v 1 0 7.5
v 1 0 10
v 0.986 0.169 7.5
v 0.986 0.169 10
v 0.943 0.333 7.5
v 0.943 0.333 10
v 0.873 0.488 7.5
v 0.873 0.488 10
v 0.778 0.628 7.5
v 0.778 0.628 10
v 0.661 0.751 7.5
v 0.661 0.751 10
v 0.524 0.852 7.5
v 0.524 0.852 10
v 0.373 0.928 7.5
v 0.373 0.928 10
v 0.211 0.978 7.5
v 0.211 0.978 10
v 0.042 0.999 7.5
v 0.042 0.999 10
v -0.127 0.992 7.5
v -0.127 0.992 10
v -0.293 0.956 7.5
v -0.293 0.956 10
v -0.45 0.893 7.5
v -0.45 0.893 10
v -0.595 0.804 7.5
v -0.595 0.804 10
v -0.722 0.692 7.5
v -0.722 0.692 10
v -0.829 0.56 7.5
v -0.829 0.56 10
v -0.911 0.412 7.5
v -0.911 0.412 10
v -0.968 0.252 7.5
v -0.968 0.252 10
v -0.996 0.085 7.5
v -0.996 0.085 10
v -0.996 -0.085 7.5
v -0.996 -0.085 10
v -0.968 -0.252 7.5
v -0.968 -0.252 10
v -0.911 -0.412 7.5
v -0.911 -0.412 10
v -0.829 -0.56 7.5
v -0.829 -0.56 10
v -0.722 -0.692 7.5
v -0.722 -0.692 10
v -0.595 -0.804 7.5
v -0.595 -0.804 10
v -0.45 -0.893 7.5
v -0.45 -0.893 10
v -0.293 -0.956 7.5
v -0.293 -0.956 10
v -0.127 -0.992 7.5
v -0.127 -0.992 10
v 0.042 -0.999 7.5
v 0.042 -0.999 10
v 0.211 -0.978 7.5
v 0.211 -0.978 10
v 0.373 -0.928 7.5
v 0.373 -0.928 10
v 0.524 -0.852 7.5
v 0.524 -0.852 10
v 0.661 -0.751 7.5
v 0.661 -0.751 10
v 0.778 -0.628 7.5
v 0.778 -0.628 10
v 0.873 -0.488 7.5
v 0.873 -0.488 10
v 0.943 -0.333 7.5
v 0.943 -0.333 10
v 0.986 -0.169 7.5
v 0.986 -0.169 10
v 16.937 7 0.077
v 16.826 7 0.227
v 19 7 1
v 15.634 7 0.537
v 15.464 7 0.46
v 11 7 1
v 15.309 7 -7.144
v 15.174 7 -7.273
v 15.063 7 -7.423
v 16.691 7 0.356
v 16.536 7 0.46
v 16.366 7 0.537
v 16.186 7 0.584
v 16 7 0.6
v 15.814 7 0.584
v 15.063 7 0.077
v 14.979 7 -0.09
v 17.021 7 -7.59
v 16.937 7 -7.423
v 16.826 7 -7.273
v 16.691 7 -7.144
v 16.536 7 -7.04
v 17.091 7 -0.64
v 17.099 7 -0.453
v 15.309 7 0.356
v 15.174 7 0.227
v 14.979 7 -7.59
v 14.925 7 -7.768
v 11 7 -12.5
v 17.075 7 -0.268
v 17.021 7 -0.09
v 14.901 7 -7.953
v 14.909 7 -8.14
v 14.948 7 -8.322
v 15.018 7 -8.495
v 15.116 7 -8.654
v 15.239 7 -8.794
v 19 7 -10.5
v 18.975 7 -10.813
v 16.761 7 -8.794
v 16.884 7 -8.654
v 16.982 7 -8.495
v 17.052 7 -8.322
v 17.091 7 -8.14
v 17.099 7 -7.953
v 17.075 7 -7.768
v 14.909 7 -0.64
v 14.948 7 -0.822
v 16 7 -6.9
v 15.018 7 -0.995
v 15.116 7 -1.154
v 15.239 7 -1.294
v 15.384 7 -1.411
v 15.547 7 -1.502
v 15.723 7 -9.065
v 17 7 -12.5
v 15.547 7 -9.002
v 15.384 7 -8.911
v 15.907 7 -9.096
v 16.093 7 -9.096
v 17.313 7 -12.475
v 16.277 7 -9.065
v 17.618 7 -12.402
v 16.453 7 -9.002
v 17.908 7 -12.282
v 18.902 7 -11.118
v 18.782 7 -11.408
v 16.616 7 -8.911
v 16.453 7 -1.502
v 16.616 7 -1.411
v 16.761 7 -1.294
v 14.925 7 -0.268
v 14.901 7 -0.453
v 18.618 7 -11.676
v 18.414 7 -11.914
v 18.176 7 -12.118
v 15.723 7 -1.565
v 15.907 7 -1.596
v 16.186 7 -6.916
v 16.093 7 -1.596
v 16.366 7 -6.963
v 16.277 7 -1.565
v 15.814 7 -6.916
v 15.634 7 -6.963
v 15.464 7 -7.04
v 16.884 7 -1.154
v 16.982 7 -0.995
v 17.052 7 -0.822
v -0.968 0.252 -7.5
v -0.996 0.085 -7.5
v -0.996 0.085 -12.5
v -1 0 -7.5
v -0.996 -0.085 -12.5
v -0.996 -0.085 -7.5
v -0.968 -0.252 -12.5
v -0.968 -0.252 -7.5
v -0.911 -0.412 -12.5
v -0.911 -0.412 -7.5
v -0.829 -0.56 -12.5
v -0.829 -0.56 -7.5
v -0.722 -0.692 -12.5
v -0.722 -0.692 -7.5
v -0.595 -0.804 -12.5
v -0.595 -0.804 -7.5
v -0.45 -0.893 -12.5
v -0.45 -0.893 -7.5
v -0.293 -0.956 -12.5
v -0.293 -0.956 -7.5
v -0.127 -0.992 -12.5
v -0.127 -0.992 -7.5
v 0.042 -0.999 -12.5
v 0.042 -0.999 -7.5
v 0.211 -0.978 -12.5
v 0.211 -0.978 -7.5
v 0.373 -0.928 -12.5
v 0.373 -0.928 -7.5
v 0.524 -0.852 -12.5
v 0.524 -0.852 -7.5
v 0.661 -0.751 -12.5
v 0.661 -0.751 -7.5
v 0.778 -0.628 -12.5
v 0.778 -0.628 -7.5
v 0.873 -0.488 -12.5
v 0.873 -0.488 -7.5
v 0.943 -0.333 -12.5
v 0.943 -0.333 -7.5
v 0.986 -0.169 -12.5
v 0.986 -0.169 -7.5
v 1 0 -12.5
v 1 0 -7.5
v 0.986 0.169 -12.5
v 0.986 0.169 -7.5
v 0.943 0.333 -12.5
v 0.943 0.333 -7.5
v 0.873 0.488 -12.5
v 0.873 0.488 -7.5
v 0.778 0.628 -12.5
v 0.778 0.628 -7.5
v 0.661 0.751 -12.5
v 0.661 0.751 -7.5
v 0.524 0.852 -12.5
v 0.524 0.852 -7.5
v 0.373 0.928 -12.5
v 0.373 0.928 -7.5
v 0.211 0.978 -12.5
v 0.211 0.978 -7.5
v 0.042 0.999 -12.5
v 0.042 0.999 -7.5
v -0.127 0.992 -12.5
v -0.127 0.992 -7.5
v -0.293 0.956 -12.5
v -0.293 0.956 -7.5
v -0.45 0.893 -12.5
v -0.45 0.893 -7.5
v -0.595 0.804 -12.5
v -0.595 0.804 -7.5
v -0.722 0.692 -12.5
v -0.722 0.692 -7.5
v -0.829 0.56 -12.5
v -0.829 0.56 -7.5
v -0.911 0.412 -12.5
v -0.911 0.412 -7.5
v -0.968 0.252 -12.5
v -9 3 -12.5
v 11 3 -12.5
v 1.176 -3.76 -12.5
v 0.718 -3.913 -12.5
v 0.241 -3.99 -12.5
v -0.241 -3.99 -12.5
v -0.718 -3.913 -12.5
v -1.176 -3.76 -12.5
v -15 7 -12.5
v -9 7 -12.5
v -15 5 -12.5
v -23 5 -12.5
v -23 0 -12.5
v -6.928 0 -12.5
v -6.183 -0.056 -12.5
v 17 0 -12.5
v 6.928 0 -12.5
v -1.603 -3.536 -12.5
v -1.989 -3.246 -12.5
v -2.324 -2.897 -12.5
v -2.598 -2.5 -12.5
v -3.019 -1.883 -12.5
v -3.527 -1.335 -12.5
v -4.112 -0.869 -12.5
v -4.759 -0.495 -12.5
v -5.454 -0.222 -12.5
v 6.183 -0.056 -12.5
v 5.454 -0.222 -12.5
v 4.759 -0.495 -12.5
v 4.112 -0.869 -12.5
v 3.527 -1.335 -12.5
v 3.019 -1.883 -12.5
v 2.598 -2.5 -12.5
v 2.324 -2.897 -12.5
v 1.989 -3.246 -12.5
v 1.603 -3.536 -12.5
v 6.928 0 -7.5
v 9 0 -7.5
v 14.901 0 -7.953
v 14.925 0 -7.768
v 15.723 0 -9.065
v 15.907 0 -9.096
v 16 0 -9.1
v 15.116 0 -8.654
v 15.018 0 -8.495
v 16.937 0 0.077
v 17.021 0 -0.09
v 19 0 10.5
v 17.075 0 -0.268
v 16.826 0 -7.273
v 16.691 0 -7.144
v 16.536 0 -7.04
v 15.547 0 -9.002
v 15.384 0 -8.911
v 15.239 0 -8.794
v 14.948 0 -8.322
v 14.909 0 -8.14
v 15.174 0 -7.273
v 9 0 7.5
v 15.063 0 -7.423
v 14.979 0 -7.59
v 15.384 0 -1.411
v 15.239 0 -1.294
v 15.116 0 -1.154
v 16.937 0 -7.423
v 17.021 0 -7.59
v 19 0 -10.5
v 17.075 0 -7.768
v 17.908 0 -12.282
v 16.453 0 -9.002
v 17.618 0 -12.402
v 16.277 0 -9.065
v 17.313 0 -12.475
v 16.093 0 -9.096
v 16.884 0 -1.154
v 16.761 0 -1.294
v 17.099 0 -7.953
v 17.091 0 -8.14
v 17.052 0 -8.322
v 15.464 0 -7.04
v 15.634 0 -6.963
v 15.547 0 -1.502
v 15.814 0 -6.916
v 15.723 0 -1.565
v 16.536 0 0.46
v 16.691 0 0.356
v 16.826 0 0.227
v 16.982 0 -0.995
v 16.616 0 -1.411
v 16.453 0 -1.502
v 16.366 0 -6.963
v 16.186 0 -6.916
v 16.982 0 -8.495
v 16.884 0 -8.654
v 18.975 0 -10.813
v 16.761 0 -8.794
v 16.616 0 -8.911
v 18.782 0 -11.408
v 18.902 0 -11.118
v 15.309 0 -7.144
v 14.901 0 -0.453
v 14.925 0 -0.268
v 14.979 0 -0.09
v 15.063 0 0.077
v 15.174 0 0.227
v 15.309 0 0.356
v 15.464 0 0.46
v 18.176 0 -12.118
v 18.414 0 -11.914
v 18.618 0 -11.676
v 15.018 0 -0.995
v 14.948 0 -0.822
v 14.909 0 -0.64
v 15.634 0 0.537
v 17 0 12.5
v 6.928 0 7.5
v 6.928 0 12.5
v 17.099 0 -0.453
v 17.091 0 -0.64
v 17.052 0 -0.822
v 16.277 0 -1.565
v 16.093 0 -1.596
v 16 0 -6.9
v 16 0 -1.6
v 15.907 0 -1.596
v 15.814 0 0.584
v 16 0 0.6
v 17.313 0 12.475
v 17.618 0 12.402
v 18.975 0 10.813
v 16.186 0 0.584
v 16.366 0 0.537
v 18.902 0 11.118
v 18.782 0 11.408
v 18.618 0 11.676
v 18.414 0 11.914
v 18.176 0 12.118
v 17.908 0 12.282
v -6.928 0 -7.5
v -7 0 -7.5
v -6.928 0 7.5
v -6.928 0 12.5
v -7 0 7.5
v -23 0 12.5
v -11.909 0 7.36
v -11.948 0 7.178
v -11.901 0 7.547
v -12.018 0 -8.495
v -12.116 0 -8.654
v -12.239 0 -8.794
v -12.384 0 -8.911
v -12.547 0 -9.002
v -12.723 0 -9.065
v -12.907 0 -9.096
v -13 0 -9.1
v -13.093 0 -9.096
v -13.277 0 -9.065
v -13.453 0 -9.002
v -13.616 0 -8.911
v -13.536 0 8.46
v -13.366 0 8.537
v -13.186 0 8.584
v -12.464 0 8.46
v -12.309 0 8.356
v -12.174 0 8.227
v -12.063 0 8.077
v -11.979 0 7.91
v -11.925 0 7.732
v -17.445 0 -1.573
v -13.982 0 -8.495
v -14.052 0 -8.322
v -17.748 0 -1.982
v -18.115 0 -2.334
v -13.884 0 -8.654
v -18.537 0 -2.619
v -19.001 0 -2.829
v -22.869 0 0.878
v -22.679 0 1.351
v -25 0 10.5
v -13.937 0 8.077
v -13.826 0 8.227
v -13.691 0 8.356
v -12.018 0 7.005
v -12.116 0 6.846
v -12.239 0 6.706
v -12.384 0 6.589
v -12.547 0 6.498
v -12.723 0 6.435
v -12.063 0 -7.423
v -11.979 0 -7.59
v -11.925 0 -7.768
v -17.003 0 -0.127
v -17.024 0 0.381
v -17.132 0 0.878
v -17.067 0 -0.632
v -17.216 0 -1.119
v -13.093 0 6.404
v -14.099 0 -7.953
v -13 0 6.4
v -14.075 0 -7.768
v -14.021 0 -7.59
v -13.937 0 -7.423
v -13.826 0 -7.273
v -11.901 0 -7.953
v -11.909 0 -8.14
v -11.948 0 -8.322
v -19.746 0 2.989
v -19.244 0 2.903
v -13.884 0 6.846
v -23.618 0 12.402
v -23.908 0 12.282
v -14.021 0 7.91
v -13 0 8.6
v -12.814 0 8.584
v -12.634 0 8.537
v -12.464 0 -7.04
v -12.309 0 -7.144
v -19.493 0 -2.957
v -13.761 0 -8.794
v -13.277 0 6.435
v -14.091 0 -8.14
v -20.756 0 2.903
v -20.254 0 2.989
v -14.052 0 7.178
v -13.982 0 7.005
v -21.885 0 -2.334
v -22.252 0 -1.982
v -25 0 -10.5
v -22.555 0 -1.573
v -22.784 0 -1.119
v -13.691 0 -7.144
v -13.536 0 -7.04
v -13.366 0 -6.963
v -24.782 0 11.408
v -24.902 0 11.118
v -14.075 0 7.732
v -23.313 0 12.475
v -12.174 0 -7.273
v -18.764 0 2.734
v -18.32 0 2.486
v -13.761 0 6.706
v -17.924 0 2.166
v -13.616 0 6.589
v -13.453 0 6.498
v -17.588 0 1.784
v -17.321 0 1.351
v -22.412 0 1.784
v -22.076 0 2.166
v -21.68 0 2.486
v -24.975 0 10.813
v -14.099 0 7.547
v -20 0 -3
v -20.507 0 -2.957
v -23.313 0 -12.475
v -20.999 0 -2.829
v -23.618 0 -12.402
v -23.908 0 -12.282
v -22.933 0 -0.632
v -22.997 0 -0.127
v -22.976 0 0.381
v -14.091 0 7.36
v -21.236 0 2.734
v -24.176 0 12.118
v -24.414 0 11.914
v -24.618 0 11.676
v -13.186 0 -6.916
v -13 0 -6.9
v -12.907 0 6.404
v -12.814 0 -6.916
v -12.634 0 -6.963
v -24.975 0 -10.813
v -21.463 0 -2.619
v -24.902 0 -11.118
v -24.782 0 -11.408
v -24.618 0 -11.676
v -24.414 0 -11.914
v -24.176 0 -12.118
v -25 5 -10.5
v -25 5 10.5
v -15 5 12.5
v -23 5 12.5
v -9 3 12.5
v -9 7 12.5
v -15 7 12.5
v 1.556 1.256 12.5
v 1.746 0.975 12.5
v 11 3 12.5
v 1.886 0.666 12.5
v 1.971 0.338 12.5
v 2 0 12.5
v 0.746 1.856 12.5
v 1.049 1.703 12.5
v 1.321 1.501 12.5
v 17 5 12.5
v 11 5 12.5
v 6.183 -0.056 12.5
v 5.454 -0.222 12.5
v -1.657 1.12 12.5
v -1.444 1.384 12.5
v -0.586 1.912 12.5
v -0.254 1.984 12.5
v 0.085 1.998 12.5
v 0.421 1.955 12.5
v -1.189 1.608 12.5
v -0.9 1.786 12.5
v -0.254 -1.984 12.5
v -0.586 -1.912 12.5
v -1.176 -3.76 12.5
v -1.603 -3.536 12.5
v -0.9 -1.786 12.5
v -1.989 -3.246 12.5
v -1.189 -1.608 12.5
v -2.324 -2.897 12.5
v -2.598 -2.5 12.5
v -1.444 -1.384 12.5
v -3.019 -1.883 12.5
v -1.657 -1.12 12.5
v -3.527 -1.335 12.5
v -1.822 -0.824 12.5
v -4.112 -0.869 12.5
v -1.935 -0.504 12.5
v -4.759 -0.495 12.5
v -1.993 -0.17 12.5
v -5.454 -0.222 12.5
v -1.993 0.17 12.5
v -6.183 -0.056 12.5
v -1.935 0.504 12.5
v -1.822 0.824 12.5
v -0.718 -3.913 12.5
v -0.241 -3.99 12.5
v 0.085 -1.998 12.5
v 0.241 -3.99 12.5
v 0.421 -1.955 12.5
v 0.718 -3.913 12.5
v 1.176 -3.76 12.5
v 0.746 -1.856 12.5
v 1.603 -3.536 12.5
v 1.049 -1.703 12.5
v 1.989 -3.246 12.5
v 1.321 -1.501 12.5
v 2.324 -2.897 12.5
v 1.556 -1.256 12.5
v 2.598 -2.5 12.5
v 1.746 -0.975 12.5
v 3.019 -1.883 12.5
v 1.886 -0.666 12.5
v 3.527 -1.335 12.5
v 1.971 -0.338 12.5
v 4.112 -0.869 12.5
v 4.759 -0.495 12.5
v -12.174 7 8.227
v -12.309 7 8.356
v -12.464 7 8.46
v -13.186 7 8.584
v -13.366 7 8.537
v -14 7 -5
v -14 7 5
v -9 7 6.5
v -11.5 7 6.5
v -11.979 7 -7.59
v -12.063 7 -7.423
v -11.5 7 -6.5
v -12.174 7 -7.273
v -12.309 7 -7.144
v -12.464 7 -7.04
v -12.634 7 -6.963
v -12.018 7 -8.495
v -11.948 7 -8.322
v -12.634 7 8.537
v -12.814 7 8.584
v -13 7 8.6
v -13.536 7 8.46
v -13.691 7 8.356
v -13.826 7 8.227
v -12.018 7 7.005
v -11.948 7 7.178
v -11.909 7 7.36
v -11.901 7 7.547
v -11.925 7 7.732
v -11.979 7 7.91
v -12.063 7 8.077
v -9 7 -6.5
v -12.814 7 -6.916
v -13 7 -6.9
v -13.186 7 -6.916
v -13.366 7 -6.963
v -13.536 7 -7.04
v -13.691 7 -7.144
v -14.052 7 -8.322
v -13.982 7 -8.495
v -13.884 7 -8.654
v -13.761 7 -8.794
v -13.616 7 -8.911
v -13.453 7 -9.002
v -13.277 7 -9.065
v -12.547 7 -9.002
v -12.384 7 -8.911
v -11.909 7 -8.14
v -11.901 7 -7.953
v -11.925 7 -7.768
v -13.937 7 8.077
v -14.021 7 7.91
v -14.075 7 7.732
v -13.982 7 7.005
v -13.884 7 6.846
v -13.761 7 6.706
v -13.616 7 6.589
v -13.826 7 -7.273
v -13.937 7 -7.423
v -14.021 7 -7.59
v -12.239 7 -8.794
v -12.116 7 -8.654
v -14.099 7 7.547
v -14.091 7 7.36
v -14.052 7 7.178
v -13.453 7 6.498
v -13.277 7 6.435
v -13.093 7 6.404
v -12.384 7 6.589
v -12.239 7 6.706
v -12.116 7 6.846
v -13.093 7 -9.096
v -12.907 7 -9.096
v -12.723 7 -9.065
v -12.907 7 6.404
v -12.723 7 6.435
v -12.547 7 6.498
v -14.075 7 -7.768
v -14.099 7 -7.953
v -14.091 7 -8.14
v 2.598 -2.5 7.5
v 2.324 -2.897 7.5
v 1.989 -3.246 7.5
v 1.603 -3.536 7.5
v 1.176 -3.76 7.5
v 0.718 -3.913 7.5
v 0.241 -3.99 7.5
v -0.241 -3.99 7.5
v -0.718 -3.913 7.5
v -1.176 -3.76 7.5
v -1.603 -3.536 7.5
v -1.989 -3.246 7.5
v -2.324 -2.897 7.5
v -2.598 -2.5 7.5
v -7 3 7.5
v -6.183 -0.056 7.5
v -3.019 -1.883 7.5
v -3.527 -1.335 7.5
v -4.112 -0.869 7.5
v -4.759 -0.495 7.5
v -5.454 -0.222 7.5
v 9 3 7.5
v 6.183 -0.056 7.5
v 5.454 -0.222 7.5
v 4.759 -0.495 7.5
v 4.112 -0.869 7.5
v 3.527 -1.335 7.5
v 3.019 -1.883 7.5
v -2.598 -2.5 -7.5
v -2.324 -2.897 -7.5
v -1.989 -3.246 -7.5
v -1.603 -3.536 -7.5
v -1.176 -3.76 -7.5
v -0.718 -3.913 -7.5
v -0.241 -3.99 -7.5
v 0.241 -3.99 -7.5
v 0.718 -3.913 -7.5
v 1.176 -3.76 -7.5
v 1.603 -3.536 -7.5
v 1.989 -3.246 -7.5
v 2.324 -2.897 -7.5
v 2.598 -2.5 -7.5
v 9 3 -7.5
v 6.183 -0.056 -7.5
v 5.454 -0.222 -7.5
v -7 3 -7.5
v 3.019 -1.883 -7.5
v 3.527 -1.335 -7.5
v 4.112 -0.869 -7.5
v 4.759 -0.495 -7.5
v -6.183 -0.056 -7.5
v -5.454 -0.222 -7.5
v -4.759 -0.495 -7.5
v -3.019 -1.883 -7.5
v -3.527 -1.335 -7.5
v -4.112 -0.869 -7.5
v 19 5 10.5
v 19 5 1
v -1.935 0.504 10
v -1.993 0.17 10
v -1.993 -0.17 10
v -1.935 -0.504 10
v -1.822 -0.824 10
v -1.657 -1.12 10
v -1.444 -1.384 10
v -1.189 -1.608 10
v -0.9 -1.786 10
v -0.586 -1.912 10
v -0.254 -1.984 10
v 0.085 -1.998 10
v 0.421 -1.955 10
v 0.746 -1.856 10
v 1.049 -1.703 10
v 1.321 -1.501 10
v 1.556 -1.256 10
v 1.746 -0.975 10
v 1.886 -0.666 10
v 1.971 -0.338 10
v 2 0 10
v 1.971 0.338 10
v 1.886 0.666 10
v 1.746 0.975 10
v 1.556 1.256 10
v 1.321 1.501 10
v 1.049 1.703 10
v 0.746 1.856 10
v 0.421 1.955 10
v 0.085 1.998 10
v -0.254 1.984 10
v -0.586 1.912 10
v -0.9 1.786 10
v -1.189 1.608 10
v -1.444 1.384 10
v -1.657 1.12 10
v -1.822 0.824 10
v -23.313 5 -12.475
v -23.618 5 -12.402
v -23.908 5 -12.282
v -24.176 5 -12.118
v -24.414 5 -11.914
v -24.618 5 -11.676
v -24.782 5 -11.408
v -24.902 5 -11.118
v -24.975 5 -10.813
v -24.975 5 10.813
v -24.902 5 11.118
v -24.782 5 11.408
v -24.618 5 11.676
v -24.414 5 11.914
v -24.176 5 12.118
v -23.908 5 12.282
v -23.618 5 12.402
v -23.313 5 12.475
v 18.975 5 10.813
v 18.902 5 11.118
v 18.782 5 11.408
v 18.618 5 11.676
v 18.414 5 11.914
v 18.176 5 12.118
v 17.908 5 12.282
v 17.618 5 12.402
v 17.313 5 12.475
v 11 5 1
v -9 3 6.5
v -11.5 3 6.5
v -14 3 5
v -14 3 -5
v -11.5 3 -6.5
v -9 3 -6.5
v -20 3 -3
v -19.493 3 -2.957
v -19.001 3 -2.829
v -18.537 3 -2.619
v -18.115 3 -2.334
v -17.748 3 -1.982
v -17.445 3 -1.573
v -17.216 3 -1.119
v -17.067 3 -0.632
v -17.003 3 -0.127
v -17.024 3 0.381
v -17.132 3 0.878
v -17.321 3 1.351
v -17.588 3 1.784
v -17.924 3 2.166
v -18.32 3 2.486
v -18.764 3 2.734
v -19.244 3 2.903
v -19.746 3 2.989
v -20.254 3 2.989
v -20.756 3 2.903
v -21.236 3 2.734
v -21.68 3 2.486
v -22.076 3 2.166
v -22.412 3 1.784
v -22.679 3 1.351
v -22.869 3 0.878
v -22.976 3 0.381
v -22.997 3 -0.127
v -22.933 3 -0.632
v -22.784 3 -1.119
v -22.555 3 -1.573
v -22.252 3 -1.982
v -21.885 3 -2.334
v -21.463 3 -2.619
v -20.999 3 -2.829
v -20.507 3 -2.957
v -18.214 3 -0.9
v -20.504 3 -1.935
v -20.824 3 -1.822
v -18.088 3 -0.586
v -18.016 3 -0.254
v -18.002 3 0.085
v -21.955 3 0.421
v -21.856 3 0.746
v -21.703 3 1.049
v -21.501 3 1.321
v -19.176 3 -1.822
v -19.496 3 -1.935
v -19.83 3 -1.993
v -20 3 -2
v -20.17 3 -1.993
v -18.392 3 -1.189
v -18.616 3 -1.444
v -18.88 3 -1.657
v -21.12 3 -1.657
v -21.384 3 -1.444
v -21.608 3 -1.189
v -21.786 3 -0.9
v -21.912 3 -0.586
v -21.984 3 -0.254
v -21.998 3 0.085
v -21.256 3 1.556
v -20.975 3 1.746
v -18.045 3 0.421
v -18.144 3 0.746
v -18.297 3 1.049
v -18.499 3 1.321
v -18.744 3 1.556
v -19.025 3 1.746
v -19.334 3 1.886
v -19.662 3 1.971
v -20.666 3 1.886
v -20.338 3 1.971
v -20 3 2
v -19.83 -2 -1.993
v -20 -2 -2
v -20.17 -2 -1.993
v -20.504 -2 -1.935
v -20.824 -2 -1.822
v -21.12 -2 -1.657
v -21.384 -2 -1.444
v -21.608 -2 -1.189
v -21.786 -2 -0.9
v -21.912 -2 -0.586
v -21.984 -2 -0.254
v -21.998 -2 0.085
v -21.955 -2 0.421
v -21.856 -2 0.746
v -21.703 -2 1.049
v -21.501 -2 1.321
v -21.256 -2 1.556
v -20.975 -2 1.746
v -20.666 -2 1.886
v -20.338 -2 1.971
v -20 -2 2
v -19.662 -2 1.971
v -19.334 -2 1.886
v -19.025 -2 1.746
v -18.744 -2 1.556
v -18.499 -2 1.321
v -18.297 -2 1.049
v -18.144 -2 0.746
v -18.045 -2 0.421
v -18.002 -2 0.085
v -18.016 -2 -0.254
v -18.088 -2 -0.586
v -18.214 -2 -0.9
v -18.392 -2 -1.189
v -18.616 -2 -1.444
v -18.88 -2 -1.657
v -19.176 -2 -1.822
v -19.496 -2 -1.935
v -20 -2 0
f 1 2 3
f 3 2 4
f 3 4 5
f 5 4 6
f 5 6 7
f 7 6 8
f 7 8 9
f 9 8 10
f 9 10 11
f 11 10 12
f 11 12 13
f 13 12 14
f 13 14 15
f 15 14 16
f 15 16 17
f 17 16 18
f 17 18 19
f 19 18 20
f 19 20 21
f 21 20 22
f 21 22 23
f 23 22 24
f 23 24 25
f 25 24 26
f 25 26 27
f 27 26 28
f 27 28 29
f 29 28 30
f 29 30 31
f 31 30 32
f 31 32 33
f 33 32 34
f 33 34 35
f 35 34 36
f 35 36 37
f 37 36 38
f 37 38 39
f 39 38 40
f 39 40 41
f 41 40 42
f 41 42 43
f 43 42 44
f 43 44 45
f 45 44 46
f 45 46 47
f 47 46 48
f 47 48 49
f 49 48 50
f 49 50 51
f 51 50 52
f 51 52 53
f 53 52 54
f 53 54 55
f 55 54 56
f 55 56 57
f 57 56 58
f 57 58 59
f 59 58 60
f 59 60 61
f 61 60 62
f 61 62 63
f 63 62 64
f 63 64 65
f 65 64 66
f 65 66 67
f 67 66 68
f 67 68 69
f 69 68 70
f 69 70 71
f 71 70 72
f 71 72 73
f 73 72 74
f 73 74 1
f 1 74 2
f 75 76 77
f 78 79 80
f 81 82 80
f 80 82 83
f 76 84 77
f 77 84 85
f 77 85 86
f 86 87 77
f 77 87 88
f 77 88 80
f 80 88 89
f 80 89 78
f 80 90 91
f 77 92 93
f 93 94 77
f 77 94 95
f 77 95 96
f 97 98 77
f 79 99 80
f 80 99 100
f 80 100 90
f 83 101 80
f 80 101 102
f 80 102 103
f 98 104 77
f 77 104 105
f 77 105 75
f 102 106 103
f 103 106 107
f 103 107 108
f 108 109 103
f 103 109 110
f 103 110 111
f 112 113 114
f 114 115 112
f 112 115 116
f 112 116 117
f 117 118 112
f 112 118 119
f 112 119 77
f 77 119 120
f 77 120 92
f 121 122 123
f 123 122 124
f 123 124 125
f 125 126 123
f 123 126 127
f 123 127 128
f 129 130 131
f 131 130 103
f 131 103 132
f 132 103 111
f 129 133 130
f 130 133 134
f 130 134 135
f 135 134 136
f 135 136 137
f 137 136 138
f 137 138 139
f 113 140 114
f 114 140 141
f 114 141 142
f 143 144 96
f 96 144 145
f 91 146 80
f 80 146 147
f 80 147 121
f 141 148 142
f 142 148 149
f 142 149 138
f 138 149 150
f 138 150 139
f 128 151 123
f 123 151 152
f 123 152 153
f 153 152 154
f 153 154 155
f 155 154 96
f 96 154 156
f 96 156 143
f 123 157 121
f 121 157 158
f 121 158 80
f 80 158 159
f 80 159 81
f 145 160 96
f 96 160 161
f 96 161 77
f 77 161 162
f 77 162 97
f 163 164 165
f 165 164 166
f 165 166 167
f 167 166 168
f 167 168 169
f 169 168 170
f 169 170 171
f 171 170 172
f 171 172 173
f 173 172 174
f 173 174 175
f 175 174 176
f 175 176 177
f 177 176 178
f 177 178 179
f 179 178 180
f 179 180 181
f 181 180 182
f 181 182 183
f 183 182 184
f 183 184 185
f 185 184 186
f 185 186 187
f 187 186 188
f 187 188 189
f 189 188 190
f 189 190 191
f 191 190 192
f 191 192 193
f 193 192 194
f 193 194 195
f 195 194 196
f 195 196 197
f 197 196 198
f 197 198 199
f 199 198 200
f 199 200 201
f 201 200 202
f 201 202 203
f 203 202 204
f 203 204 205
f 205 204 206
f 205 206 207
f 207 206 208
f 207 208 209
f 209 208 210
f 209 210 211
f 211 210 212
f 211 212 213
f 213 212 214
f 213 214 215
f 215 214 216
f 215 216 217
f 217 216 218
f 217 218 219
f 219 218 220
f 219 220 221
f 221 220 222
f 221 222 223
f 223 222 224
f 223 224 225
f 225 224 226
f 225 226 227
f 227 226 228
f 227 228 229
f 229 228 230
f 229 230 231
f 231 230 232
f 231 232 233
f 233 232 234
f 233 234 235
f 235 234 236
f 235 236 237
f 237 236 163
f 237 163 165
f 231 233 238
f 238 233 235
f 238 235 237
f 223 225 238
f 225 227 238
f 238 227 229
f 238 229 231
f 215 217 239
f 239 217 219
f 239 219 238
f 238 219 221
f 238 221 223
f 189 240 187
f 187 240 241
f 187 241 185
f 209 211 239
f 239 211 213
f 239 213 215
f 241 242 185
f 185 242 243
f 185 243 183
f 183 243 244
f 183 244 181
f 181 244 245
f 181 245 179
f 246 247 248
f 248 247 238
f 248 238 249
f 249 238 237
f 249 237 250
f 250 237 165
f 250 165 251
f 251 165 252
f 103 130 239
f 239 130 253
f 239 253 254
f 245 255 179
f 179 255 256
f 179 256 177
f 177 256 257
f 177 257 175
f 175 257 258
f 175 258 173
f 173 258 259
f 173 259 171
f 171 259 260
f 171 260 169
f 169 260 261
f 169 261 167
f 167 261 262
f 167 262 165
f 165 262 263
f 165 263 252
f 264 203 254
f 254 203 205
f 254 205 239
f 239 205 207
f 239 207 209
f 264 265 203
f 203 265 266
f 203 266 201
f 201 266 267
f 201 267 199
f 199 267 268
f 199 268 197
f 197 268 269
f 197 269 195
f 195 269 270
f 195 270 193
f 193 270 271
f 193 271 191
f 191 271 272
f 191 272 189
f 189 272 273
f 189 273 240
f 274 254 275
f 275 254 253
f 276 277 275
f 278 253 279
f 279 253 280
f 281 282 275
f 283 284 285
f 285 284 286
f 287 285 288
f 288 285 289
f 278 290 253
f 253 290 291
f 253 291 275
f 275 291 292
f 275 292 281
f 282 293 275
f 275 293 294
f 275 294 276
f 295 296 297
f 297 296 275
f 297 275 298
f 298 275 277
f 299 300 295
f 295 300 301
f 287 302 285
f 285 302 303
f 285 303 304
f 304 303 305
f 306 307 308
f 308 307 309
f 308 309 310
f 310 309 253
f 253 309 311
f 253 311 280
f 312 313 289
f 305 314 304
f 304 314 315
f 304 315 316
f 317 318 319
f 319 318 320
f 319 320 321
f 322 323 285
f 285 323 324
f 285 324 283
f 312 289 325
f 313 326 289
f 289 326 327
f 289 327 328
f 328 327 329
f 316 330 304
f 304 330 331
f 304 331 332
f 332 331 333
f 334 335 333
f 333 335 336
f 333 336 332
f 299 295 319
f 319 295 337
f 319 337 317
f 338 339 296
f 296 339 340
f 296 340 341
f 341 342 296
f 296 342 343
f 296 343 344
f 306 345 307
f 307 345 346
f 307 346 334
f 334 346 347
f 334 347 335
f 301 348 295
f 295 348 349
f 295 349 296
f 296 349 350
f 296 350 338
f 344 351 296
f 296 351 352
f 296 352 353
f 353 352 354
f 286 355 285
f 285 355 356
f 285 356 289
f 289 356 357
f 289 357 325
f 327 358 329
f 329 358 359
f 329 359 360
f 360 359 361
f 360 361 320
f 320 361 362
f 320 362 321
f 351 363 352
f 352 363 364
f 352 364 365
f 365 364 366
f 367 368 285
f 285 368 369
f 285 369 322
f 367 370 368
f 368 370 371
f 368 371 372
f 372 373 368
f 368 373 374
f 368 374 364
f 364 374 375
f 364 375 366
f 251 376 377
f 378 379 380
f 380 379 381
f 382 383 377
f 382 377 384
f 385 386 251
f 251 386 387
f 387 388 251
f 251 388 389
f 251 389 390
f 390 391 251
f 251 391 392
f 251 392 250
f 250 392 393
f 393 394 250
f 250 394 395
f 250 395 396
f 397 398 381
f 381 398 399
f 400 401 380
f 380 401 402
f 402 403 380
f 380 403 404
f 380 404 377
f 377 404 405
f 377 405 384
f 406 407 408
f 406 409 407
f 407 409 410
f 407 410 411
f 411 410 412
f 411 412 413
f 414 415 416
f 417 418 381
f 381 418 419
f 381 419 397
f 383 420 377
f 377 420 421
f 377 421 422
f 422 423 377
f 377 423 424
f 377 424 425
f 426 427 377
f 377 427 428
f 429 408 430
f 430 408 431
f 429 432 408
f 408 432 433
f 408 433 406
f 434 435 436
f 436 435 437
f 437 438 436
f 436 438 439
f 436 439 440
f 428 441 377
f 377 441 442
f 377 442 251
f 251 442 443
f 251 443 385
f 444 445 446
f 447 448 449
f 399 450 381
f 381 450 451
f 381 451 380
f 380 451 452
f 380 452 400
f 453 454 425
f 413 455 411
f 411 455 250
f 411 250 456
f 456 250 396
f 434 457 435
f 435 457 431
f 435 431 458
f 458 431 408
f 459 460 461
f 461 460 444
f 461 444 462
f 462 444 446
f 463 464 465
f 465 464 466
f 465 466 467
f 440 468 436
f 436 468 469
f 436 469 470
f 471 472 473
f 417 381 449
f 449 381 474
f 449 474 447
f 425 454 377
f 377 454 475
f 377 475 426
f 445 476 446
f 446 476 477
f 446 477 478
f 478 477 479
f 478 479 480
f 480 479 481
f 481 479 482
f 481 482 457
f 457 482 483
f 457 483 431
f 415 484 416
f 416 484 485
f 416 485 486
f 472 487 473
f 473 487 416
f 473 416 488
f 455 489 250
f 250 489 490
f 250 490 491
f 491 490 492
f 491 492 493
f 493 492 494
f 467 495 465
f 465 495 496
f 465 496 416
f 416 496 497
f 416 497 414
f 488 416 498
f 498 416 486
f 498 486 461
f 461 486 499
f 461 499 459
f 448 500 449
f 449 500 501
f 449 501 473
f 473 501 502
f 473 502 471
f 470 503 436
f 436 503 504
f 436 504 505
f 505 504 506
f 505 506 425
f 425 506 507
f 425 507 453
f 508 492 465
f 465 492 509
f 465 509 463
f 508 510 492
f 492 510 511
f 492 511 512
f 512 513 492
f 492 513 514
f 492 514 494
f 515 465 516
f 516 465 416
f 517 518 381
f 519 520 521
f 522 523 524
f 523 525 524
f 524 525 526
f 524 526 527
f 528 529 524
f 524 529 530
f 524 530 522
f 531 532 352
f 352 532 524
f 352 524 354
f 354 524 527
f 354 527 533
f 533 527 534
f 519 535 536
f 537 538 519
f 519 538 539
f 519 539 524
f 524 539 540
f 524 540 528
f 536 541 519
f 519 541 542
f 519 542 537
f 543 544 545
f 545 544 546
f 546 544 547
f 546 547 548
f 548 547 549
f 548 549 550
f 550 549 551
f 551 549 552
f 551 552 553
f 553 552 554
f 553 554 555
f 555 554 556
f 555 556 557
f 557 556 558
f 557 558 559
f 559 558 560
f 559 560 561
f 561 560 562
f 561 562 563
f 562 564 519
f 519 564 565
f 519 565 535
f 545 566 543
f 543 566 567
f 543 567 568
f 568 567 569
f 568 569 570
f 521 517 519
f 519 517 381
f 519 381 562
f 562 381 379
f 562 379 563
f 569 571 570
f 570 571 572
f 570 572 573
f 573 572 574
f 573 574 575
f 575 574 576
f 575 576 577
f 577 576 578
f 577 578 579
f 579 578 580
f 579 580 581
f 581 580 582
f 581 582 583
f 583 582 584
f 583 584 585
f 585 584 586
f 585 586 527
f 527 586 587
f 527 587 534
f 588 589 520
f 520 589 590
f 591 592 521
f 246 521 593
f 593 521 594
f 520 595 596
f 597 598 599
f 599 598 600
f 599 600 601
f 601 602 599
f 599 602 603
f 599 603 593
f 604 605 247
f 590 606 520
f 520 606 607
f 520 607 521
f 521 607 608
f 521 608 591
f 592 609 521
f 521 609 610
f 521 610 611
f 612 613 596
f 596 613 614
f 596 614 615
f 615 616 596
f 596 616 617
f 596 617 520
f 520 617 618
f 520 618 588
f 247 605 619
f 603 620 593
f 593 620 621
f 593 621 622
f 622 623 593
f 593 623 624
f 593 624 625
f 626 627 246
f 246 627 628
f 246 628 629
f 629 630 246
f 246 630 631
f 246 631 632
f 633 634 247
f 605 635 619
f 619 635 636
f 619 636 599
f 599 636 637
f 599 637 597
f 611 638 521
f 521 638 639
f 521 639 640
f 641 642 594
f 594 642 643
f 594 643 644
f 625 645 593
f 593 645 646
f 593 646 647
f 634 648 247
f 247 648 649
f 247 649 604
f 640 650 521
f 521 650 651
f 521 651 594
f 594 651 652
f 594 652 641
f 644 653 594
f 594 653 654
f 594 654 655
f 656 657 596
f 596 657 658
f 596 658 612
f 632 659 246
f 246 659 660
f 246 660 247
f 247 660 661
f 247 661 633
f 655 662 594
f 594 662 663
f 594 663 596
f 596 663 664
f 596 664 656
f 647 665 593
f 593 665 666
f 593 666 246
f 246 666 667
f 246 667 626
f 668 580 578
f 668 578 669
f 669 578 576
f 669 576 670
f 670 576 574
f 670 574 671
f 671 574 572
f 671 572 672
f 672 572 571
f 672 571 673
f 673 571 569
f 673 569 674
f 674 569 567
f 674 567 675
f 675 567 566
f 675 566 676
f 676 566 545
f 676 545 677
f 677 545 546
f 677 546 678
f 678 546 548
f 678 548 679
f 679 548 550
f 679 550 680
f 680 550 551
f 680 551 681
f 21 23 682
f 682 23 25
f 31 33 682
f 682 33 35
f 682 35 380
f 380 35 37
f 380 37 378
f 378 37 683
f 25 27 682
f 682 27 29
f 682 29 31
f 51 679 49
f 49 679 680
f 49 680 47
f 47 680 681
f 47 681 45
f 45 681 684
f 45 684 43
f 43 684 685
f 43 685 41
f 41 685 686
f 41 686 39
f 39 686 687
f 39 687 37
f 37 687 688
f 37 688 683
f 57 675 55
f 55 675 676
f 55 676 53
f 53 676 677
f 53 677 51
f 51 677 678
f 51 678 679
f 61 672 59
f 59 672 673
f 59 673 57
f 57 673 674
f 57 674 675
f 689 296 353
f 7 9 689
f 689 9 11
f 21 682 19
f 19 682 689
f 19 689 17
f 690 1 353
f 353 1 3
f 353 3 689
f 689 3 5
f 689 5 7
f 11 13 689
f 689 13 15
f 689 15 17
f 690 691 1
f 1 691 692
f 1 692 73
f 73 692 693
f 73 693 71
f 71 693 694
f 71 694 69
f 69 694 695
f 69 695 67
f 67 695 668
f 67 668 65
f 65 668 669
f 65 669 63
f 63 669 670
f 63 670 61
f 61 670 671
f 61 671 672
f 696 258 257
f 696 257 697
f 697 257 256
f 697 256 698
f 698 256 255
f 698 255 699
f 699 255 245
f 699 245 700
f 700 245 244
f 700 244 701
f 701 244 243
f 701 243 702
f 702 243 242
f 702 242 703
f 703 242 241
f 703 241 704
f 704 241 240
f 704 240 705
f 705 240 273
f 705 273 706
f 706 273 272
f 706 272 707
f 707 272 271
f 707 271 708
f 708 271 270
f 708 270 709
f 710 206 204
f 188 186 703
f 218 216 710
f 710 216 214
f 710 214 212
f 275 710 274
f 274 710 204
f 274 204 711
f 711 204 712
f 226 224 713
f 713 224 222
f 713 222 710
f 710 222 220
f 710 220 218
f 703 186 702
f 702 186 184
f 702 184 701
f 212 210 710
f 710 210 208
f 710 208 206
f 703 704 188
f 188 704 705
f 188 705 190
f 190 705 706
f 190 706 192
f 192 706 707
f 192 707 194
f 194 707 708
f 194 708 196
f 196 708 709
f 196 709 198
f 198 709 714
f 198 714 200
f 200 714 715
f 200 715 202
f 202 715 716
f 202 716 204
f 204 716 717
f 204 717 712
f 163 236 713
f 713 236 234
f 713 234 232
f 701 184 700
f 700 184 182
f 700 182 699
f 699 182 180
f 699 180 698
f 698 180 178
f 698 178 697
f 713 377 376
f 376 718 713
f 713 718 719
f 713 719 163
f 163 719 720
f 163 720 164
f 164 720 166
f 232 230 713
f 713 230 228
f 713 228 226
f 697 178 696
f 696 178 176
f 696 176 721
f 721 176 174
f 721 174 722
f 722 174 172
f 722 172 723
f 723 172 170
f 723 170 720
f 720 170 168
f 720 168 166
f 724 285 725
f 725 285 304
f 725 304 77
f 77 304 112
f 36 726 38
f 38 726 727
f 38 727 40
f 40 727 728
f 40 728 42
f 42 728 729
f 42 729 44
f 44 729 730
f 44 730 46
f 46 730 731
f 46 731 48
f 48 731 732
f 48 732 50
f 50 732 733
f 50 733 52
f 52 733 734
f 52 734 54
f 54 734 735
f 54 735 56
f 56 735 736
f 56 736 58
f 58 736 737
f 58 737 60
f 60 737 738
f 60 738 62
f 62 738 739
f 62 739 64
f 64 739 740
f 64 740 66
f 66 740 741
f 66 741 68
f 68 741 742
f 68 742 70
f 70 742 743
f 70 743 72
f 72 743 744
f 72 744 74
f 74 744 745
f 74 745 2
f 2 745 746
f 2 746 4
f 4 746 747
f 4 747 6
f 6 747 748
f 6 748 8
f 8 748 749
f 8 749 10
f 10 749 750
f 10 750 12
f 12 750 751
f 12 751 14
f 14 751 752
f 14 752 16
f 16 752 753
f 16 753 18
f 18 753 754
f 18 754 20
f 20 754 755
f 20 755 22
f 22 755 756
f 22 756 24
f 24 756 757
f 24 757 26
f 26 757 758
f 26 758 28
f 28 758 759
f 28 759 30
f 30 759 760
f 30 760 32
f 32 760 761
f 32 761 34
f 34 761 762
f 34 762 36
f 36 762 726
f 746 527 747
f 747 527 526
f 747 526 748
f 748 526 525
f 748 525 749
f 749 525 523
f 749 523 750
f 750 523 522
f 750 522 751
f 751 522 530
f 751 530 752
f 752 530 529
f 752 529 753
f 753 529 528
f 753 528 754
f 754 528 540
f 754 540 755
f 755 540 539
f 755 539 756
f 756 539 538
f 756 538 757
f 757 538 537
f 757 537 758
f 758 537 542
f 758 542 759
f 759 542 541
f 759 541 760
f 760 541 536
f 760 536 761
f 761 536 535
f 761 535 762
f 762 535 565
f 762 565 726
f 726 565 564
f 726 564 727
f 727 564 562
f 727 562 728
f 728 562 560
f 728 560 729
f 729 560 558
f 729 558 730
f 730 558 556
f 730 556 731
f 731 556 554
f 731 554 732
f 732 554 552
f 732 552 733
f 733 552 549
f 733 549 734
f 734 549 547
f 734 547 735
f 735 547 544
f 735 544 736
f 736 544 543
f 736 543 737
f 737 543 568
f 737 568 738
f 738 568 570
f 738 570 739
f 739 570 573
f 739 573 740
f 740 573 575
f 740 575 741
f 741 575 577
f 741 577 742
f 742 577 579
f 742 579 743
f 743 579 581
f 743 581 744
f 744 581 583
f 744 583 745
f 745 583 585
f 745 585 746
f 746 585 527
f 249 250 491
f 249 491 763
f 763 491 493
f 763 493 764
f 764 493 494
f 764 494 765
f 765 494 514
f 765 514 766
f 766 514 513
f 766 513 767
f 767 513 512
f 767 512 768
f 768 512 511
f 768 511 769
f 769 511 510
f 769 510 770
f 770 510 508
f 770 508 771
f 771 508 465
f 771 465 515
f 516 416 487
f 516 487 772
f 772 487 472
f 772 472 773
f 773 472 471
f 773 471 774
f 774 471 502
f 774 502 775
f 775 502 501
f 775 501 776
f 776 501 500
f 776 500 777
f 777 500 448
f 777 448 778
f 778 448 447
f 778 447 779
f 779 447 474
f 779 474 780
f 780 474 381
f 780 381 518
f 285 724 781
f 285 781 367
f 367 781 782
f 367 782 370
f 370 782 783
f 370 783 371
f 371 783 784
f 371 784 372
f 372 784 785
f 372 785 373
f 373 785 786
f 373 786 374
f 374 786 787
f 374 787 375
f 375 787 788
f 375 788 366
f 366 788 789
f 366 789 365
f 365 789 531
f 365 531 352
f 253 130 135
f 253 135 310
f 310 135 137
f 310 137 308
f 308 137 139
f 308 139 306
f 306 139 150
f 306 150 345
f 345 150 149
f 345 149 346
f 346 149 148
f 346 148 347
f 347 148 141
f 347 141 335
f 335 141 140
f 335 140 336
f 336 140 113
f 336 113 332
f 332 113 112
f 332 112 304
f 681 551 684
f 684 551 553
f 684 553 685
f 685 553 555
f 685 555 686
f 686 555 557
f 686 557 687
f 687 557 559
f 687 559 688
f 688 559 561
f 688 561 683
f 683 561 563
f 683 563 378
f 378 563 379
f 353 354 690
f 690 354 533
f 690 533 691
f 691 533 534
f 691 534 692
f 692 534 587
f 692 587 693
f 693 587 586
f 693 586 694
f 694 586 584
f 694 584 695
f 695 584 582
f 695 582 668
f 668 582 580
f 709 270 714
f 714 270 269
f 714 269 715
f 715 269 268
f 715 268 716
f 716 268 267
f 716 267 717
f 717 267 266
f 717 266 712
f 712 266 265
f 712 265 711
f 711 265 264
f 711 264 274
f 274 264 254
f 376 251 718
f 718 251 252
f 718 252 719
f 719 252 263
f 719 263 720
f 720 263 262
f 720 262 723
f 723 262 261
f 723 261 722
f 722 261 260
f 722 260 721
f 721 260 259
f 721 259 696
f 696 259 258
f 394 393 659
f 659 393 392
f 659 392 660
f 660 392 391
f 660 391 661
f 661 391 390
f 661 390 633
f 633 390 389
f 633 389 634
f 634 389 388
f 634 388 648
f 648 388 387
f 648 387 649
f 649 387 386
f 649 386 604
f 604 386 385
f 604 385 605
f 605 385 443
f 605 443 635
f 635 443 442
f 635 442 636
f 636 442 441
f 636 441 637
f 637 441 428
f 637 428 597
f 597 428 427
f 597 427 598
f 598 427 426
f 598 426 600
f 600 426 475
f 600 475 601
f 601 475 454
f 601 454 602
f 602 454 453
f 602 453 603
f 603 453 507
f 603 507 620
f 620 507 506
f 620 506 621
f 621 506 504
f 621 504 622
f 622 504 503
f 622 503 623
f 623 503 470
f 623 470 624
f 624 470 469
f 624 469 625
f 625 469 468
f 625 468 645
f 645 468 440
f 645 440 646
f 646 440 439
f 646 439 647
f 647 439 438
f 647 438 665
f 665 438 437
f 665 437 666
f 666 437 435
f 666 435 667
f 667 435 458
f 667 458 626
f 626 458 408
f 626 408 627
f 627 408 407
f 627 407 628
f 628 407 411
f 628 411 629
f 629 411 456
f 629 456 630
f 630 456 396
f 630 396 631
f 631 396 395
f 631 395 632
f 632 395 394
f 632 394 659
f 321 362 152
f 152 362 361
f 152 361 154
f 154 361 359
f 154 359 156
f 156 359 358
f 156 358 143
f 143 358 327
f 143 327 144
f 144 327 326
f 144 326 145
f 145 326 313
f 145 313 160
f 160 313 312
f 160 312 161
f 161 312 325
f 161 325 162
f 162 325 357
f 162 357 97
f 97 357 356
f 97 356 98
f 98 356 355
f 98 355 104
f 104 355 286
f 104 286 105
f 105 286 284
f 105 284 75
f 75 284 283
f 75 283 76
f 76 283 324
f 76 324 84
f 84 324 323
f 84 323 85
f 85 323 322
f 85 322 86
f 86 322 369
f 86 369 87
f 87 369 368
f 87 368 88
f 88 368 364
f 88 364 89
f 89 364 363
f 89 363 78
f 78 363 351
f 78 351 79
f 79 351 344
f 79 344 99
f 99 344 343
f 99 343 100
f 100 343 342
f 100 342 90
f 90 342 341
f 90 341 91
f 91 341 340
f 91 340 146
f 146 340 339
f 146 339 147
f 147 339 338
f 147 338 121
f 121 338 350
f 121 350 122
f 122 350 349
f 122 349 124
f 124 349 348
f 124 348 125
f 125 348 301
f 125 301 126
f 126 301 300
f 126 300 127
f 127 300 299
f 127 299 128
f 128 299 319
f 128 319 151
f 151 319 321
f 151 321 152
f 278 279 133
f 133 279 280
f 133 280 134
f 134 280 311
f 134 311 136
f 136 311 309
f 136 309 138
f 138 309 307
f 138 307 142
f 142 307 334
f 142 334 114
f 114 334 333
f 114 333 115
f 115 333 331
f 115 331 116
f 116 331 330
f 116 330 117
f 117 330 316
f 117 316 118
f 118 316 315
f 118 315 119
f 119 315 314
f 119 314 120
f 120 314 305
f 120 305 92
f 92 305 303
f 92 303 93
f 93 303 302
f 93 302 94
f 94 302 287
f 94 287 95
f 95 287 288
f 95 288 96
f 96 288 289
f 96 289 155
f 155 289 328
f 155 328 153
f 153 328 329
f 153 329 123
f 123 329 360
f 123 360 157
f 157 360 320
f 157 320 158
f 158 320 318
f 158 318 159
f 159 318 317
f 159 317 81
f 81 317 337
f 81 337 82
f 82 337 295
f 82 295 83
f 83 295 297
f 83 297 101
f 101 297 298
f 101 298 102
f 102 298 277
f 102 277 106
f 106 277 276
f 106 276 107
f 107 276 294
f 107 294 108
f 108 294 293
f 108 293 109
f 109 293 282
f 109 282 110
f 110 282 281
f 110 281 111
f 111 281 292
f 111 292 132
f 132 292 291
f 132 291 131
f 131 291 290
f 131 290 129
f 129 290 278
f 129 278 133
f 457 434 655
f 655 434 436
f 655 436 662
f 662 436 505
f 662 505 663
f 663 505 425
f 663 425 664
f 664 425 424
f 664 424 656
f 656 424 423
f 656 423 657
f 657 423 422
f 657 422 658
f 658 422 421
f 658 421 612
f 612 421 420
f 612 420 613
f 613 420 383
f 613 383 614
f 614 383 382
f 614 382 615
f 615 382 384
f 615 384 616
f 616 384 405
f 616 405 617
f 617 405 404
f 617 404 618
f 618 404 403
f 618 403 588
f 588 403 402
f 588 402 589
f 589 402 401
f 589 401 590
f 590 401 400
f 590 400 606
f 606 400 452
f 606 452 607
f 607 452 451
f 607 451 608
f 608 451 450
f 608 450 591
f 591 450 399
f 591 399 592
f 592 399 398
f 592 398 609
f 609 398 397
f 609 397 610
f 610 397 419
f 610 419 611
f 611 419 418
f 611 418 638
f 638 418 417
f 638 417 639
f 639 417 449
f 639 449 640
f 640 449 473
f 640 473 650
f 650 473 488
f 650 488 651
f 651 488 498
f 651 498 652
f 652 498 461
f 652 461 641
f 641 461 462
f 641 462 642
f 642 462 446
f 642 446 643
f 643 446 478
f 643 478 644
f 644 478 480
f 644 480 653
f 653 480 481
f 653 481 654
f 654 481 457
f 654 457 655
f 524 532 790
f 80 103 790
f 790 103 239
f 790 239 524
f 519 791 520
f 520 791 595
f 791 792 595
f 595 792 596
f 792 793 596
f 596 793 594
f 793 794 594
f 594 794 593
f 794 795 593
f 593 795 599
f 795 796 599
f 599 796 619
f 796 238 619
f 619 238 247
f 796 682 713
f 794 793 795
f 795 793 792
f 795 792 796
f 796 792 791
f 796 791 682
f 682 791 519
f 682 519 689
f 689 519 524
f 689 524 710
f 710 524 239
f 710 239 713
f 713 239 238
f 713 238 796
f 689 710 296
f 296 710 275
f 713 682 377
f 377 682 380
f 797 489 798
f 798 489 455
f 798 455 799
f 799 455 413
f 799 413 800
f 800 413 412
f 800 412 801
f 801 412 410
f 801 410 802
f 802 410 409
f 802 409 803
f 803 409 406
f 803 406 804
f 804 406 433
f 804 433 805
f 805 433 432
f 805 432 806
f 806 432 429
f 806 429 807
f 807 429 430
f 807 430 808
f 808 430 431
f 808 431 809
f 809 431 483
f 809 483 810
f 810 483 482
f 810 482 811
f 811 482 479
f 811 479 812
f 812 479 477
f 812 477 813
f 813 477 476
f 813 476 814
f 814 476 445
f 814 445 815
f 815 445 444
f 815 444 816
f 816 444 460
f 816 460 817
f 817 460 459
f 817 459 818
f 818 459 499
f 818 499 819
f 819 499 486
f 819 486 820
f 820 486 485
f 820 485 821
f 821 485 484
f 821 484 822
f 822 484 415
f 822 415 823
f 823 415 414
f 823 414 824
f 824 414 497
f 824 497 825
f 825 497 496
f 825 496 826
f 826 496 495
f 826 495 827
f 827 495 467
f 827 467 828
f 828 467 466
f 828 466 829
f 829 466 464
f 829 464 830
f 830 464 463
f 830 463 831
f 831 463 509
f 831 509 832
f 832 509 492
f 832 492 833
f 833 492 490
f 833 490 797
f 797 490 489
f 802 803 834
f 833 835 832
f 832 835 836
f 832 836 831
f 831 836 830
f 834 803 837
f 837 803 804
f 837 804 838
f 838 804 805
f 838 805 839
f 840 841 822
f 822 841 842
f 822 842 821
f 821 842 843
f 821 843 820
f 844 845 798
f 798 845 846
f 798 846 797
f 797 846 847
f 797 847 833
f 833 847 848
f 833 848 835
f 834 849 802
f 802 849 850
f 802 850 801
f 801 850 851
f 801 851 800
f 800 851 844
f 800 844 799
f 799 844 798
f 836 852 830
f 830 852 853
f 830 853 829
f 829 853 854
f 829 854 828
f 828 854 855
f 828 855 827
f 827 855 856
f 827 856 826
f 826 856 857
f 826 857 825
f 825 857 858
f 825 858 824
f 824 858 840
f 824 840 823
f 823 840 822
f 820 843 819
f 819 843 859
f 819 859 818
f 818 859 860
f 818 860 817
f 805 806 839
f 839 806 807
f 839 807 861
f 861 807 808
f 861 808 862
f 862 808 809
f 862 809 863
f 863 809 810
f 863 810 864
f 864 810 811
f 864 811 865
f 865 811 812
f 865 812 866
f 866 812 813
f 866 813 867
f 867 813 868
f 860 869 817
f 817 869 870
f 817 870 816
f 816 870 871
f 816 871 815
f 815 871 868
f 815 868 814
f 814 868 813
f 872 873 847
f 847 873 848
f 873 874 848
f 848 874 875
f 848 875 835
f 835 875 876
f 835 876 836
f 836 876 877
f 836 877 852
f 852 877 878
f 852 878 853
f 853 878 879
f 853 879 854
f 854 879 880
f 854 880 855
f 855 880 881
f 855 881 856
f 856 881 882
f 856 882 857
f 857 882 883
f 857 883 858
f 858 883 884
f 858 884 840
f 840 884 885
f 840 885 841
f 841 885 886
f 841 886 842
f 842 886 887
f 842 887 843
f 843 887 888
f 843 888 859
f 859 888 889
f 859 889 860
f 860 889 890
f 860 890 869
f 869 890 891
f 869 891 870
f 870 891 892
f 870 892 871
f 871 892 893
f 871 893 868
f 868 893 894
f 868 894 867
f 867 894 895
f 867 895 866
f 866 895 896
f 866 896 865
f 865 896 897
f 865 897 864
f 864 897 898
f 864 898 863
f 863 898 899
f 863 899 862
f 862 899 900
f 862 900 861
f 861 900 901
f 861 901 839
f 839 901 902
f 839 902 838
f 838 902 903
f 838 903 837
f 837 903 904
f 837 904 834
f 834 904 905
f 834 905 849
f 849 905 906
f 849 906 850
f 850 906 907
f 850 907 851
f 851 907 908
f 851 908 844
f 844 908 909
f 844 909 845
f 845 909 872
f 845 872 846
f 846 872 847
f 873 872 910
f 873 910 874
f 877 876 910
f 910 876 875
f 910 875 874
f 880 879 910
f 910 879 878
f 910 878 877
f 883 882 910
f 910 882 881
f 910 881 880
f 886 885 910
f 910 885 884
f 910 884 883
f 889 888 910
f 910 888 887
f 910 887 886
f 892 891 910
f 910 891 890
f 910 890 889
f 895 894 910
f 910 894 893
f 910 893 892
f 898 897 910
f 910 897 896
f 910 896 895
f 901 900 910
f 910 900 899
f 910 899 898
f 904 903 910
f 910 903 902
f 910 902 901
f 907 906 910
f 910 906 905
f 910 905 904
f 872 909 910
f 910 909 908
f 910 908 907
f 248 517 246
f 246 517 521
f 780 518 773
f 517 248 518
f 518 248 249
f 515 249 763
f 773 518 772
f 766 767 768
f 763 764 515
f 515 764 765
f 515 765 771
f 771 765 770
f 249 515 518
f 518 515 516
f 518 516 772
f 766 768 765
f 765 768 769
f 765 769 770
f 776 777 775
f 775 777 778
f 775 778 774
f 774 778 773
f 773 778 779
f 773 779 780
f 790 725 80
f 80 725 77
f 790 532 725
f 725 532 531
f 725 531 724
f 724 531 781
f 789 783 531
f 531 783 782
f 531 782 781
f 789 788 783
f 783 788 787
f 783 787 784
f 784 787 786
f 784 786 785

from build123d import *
from build123d.topology import SkipClean

# Parameters (mm, degrees)
SKETCH_1_W           = 50
SKETCH_1_H           = 25
EXTRUDE_1_DEPTH      = 7
EXTRUDE_2_DEPTH      = 5
SKETCH_3_R           = 1
CUT_EXTRUDE_1_DEPTH  = 37.041642582
SKETCH_5_W           = 6
SKETCH_5_H           = 25
CUT_EXTRUDE_5_DEPTH  = 31.037476592
SKETCH_6_R           = 2
CUT_EXTRUDE_6_DEPTH  = 2.5
FILLET_2_R           = 2
FILLET_3_R           = 5
SKETCH_8_R           = 1.1
CUT_EXTRUDE_9_DEPTH  = 31.037476592
CUT_EXTRUDE_4_DEPTH  = 4
SKETCH_7_W           = 16
SKETCH_7_H           = 15
CUT_EXTRUDE_7_DEPTH  = 29.814059068
SKETCH_10_R          = 3
CUT_EXTRUDE_11_DEPTH = 3
SKETCH_12_R          = 2
EXTRUDE_3_DEPTH      = 5
SKETCH_13_W          = 10
SKETCH_13_H          = 25
SKETCH_13_W_2        = 8
SKETCH_13_H_2        = 11.5
CUT_EXTRUDE_12_DEPTH = 2


with BuildPart() as part:
    # 草图1 → 凸台-拉伸1 (new body)
    with BuildSketch(Plane(origin=(0, 0, 0), x_dir=(1, 0, 0), z_dir=(0, 1, 0))):
        Rectangle(SKETCH_1_W, SKETCH_1_H)
    extrude(amount=EXTRUDE_1_DEPTH)

    # 草图2 → 凸台-拉伸2 (add)
    with BuildSketch(Plane.XY.offset(12.5)):
        with BuildLine():
            Line((-2.828427125, 0), (2.828427125, 0))
            ThreePointArc((2.828427125, 0), (0, -4), (-2.828427125, 0))
        make_face()
    extrude_2 = extrude(amount=-EXTRUDE_2_DEPTH)

    # 草图3 → 切除-拉伸1 (cut, through all)
    with BuildSketch(Plane.XY.offset(12.5)):
        Circle(SKETCH_3_R)
    cut_extrude_1 = extrude(amount=-CUT_EXTRUDE_1_DEPTH, mode=Mode.SUBTRACT)

    # 镜向1: 凸台-拉伸2, 切除-拉伸1 across plane
    with SkipClean():  # the faces are left unmerged after this step: merging them gives an invalid solid
        add(extrude_2.mirror(Plane.XY))
        add(cut_extrude_1.mirror(Plane.XY), mode=Mode.SUBTRACT)

    # 草图5 → 切除-拉伸5 (cut, through all)
    with SkipClean():  # the faces are left unmerged after this step: merging them gives an invalid solid
        with BuildSketch(Plane(origin=(0, 7, 0), x_dir=(1, 0, 0), z_dir=(0, 1, 0))):
            with Locations((22, 0)):
                Rectangle(SKETCH_5_W, SKETCH_5_H)
        extrude(amount=-CUT_EXTRUDE_5_DEPTH, mode=Mode.SUBTRACT)

    # 草图6 → 切除-拉伸6 (cut)
    with SkipClean():  # the faces are left unmerged after this step: merging them gives an invalid solid
        with BuildSketch(Plane.XY.offset(12.5)):
            Circle(SKETCH_6_R)
        extrude(amount=-CUT_EXTRUDE_6_DEPTH, mode=Mode.SUBTRACT)

    # 圆角2
    fillet_2_edges = [part.edges().sort_by_distance(p)[0] for p in [
        (19, 3.5, 12.5),
        (19, 3.5, -12.5),
        (-25, 3.5, 12.5),
        (-25, 3.5, -12.5),
    ]]
    fillet(fillet_2_edges, radius=FILLET_2_R)

    # 圆角3
    fillet_3_edges = [part.edges().sort_by_distance(p)[0] for p in [
        (2.828427125, 0, 10),
        (-2.828427125, 0, 10),
        (2.828427125, 0, -10),
        (-2.828427125, 0, -10),
    ]]
    fillet(fillet_3_edges, radius=FILLET_3_R)

    # 草图8 → 切除-拉伸9 (cut, through all)
    with SkipClean():  # the faces are left unmerged after this step: merging them gives an invalid solid
        with BuildSketch(Plane(origin=(0, 7, 0), x_dir=(1, 0, 0), z_dir=(0, 1, 0))):
            with Locations(Location((-13, 8, 0), (0, 0, 270))):
                Circle(SKETCH_8_R)
            with Locations(Location((-13, -7.5, 0), (0, 0, 270))):
                Circle(SKETCH_8_R)
            with Locations(Location((16, 8, 0), (0, 0, 270))):
                Circle(SKETCH_8_R)
            with Locations(Location((16, 0.5, 0), (0, 0, 270))):
                Circle(SKETCH_8_R)
        extrude(amount=-CUT_EXTRUDE_9_DEPTH, mode=Mode.SUBTRACT)

    # 草图4 → 切除-拉伸4 (cut)
    with SkipClean():  # the faces are left unmerged after this step: merging them gives an invalid solid
        with BuildSketch(Plane(origin=(0, 7, 0), x_dir=(1, 0, 0), z_dir=(0, 1, 0))):
            Polygon((-9, -12.5), (11, -12.5), (11, 12.5), (-9, 12.5), (-9, 6.5), (-11.5, 6.5), (-14, 5), (-14, -5), (-11.5, -6.5), (-9, -6.5), align=None)
        extrude(amount=-CUT_EXTRUDE_4_DEPTH, mode=Mode.SUBTRACT)

    # 草图7 → 切除-拉伸7 (cut, through all)
    with SkipClean():  # the faces are left unmerged after this step: merging them gives an invalid solid
        with BuildSketch(Plane(origin=(0, 3, 0), x_dir=(1, 0, 0), z_dir=(0, 1, 0))):
            with Locations((1, 0)):
                Rectangle(SKETCH_7_W, SKETCH_7_H)
        extrude(amount=-CUT_EXTRUDE_7_DEPTH, mode=Mode.SUBTRACT)

    # 草图10 → 切除-拉伸11 (cut)
    with SkipClean():  # the faces are left unmerged after this step: merging them gives an invalid solid
        with BuildSketch(Plane.XZ):
            with Locations(Location((-20, 0, 0), (0, 0, 270))):
                Circle(SKETCH_10_R)
        extrude(amount=-CUT_EXTRUDE_11_DEPTH, mode=Mode.SUBTRACT)

    # 草图12 → 凸台-拉伸3 (add)
    with SkipClean():  # the faces are left unmerged after this step: merging them gives an invalid solid
        with BuildSketch(Plane.XZ.offset(-3)):
            with Locations(Location((-20, 0, 0), (0, 0, 270))):
                Circle(SKETCH_12_R)
        extrude(amount=EXTRUDE_3_DEPTH)

    # 草图13 → 切除-拉伸12 (cut)
    with SkipClean():  # the faces are left unmerged after this step: merging them gives an invalid solid
        with BuildSketch(Plane(origin=(0, 7, 0), x_dir=(1, 0, 0), z_dir=(0, 1, 0))):
            with Locations((-20, 0)):
                Rectangle(SKETCH_13_W, SKETCH_13_H)
            with Locations((15, -6.75)):
                Rectangle(SKETCH_13_W_2, SKETCH_13_H_2)
        extrude(amount=-CUT_EXTRUDE_12_DEPTH, mode=Mode.SUBTRACT)


solid = part.part
